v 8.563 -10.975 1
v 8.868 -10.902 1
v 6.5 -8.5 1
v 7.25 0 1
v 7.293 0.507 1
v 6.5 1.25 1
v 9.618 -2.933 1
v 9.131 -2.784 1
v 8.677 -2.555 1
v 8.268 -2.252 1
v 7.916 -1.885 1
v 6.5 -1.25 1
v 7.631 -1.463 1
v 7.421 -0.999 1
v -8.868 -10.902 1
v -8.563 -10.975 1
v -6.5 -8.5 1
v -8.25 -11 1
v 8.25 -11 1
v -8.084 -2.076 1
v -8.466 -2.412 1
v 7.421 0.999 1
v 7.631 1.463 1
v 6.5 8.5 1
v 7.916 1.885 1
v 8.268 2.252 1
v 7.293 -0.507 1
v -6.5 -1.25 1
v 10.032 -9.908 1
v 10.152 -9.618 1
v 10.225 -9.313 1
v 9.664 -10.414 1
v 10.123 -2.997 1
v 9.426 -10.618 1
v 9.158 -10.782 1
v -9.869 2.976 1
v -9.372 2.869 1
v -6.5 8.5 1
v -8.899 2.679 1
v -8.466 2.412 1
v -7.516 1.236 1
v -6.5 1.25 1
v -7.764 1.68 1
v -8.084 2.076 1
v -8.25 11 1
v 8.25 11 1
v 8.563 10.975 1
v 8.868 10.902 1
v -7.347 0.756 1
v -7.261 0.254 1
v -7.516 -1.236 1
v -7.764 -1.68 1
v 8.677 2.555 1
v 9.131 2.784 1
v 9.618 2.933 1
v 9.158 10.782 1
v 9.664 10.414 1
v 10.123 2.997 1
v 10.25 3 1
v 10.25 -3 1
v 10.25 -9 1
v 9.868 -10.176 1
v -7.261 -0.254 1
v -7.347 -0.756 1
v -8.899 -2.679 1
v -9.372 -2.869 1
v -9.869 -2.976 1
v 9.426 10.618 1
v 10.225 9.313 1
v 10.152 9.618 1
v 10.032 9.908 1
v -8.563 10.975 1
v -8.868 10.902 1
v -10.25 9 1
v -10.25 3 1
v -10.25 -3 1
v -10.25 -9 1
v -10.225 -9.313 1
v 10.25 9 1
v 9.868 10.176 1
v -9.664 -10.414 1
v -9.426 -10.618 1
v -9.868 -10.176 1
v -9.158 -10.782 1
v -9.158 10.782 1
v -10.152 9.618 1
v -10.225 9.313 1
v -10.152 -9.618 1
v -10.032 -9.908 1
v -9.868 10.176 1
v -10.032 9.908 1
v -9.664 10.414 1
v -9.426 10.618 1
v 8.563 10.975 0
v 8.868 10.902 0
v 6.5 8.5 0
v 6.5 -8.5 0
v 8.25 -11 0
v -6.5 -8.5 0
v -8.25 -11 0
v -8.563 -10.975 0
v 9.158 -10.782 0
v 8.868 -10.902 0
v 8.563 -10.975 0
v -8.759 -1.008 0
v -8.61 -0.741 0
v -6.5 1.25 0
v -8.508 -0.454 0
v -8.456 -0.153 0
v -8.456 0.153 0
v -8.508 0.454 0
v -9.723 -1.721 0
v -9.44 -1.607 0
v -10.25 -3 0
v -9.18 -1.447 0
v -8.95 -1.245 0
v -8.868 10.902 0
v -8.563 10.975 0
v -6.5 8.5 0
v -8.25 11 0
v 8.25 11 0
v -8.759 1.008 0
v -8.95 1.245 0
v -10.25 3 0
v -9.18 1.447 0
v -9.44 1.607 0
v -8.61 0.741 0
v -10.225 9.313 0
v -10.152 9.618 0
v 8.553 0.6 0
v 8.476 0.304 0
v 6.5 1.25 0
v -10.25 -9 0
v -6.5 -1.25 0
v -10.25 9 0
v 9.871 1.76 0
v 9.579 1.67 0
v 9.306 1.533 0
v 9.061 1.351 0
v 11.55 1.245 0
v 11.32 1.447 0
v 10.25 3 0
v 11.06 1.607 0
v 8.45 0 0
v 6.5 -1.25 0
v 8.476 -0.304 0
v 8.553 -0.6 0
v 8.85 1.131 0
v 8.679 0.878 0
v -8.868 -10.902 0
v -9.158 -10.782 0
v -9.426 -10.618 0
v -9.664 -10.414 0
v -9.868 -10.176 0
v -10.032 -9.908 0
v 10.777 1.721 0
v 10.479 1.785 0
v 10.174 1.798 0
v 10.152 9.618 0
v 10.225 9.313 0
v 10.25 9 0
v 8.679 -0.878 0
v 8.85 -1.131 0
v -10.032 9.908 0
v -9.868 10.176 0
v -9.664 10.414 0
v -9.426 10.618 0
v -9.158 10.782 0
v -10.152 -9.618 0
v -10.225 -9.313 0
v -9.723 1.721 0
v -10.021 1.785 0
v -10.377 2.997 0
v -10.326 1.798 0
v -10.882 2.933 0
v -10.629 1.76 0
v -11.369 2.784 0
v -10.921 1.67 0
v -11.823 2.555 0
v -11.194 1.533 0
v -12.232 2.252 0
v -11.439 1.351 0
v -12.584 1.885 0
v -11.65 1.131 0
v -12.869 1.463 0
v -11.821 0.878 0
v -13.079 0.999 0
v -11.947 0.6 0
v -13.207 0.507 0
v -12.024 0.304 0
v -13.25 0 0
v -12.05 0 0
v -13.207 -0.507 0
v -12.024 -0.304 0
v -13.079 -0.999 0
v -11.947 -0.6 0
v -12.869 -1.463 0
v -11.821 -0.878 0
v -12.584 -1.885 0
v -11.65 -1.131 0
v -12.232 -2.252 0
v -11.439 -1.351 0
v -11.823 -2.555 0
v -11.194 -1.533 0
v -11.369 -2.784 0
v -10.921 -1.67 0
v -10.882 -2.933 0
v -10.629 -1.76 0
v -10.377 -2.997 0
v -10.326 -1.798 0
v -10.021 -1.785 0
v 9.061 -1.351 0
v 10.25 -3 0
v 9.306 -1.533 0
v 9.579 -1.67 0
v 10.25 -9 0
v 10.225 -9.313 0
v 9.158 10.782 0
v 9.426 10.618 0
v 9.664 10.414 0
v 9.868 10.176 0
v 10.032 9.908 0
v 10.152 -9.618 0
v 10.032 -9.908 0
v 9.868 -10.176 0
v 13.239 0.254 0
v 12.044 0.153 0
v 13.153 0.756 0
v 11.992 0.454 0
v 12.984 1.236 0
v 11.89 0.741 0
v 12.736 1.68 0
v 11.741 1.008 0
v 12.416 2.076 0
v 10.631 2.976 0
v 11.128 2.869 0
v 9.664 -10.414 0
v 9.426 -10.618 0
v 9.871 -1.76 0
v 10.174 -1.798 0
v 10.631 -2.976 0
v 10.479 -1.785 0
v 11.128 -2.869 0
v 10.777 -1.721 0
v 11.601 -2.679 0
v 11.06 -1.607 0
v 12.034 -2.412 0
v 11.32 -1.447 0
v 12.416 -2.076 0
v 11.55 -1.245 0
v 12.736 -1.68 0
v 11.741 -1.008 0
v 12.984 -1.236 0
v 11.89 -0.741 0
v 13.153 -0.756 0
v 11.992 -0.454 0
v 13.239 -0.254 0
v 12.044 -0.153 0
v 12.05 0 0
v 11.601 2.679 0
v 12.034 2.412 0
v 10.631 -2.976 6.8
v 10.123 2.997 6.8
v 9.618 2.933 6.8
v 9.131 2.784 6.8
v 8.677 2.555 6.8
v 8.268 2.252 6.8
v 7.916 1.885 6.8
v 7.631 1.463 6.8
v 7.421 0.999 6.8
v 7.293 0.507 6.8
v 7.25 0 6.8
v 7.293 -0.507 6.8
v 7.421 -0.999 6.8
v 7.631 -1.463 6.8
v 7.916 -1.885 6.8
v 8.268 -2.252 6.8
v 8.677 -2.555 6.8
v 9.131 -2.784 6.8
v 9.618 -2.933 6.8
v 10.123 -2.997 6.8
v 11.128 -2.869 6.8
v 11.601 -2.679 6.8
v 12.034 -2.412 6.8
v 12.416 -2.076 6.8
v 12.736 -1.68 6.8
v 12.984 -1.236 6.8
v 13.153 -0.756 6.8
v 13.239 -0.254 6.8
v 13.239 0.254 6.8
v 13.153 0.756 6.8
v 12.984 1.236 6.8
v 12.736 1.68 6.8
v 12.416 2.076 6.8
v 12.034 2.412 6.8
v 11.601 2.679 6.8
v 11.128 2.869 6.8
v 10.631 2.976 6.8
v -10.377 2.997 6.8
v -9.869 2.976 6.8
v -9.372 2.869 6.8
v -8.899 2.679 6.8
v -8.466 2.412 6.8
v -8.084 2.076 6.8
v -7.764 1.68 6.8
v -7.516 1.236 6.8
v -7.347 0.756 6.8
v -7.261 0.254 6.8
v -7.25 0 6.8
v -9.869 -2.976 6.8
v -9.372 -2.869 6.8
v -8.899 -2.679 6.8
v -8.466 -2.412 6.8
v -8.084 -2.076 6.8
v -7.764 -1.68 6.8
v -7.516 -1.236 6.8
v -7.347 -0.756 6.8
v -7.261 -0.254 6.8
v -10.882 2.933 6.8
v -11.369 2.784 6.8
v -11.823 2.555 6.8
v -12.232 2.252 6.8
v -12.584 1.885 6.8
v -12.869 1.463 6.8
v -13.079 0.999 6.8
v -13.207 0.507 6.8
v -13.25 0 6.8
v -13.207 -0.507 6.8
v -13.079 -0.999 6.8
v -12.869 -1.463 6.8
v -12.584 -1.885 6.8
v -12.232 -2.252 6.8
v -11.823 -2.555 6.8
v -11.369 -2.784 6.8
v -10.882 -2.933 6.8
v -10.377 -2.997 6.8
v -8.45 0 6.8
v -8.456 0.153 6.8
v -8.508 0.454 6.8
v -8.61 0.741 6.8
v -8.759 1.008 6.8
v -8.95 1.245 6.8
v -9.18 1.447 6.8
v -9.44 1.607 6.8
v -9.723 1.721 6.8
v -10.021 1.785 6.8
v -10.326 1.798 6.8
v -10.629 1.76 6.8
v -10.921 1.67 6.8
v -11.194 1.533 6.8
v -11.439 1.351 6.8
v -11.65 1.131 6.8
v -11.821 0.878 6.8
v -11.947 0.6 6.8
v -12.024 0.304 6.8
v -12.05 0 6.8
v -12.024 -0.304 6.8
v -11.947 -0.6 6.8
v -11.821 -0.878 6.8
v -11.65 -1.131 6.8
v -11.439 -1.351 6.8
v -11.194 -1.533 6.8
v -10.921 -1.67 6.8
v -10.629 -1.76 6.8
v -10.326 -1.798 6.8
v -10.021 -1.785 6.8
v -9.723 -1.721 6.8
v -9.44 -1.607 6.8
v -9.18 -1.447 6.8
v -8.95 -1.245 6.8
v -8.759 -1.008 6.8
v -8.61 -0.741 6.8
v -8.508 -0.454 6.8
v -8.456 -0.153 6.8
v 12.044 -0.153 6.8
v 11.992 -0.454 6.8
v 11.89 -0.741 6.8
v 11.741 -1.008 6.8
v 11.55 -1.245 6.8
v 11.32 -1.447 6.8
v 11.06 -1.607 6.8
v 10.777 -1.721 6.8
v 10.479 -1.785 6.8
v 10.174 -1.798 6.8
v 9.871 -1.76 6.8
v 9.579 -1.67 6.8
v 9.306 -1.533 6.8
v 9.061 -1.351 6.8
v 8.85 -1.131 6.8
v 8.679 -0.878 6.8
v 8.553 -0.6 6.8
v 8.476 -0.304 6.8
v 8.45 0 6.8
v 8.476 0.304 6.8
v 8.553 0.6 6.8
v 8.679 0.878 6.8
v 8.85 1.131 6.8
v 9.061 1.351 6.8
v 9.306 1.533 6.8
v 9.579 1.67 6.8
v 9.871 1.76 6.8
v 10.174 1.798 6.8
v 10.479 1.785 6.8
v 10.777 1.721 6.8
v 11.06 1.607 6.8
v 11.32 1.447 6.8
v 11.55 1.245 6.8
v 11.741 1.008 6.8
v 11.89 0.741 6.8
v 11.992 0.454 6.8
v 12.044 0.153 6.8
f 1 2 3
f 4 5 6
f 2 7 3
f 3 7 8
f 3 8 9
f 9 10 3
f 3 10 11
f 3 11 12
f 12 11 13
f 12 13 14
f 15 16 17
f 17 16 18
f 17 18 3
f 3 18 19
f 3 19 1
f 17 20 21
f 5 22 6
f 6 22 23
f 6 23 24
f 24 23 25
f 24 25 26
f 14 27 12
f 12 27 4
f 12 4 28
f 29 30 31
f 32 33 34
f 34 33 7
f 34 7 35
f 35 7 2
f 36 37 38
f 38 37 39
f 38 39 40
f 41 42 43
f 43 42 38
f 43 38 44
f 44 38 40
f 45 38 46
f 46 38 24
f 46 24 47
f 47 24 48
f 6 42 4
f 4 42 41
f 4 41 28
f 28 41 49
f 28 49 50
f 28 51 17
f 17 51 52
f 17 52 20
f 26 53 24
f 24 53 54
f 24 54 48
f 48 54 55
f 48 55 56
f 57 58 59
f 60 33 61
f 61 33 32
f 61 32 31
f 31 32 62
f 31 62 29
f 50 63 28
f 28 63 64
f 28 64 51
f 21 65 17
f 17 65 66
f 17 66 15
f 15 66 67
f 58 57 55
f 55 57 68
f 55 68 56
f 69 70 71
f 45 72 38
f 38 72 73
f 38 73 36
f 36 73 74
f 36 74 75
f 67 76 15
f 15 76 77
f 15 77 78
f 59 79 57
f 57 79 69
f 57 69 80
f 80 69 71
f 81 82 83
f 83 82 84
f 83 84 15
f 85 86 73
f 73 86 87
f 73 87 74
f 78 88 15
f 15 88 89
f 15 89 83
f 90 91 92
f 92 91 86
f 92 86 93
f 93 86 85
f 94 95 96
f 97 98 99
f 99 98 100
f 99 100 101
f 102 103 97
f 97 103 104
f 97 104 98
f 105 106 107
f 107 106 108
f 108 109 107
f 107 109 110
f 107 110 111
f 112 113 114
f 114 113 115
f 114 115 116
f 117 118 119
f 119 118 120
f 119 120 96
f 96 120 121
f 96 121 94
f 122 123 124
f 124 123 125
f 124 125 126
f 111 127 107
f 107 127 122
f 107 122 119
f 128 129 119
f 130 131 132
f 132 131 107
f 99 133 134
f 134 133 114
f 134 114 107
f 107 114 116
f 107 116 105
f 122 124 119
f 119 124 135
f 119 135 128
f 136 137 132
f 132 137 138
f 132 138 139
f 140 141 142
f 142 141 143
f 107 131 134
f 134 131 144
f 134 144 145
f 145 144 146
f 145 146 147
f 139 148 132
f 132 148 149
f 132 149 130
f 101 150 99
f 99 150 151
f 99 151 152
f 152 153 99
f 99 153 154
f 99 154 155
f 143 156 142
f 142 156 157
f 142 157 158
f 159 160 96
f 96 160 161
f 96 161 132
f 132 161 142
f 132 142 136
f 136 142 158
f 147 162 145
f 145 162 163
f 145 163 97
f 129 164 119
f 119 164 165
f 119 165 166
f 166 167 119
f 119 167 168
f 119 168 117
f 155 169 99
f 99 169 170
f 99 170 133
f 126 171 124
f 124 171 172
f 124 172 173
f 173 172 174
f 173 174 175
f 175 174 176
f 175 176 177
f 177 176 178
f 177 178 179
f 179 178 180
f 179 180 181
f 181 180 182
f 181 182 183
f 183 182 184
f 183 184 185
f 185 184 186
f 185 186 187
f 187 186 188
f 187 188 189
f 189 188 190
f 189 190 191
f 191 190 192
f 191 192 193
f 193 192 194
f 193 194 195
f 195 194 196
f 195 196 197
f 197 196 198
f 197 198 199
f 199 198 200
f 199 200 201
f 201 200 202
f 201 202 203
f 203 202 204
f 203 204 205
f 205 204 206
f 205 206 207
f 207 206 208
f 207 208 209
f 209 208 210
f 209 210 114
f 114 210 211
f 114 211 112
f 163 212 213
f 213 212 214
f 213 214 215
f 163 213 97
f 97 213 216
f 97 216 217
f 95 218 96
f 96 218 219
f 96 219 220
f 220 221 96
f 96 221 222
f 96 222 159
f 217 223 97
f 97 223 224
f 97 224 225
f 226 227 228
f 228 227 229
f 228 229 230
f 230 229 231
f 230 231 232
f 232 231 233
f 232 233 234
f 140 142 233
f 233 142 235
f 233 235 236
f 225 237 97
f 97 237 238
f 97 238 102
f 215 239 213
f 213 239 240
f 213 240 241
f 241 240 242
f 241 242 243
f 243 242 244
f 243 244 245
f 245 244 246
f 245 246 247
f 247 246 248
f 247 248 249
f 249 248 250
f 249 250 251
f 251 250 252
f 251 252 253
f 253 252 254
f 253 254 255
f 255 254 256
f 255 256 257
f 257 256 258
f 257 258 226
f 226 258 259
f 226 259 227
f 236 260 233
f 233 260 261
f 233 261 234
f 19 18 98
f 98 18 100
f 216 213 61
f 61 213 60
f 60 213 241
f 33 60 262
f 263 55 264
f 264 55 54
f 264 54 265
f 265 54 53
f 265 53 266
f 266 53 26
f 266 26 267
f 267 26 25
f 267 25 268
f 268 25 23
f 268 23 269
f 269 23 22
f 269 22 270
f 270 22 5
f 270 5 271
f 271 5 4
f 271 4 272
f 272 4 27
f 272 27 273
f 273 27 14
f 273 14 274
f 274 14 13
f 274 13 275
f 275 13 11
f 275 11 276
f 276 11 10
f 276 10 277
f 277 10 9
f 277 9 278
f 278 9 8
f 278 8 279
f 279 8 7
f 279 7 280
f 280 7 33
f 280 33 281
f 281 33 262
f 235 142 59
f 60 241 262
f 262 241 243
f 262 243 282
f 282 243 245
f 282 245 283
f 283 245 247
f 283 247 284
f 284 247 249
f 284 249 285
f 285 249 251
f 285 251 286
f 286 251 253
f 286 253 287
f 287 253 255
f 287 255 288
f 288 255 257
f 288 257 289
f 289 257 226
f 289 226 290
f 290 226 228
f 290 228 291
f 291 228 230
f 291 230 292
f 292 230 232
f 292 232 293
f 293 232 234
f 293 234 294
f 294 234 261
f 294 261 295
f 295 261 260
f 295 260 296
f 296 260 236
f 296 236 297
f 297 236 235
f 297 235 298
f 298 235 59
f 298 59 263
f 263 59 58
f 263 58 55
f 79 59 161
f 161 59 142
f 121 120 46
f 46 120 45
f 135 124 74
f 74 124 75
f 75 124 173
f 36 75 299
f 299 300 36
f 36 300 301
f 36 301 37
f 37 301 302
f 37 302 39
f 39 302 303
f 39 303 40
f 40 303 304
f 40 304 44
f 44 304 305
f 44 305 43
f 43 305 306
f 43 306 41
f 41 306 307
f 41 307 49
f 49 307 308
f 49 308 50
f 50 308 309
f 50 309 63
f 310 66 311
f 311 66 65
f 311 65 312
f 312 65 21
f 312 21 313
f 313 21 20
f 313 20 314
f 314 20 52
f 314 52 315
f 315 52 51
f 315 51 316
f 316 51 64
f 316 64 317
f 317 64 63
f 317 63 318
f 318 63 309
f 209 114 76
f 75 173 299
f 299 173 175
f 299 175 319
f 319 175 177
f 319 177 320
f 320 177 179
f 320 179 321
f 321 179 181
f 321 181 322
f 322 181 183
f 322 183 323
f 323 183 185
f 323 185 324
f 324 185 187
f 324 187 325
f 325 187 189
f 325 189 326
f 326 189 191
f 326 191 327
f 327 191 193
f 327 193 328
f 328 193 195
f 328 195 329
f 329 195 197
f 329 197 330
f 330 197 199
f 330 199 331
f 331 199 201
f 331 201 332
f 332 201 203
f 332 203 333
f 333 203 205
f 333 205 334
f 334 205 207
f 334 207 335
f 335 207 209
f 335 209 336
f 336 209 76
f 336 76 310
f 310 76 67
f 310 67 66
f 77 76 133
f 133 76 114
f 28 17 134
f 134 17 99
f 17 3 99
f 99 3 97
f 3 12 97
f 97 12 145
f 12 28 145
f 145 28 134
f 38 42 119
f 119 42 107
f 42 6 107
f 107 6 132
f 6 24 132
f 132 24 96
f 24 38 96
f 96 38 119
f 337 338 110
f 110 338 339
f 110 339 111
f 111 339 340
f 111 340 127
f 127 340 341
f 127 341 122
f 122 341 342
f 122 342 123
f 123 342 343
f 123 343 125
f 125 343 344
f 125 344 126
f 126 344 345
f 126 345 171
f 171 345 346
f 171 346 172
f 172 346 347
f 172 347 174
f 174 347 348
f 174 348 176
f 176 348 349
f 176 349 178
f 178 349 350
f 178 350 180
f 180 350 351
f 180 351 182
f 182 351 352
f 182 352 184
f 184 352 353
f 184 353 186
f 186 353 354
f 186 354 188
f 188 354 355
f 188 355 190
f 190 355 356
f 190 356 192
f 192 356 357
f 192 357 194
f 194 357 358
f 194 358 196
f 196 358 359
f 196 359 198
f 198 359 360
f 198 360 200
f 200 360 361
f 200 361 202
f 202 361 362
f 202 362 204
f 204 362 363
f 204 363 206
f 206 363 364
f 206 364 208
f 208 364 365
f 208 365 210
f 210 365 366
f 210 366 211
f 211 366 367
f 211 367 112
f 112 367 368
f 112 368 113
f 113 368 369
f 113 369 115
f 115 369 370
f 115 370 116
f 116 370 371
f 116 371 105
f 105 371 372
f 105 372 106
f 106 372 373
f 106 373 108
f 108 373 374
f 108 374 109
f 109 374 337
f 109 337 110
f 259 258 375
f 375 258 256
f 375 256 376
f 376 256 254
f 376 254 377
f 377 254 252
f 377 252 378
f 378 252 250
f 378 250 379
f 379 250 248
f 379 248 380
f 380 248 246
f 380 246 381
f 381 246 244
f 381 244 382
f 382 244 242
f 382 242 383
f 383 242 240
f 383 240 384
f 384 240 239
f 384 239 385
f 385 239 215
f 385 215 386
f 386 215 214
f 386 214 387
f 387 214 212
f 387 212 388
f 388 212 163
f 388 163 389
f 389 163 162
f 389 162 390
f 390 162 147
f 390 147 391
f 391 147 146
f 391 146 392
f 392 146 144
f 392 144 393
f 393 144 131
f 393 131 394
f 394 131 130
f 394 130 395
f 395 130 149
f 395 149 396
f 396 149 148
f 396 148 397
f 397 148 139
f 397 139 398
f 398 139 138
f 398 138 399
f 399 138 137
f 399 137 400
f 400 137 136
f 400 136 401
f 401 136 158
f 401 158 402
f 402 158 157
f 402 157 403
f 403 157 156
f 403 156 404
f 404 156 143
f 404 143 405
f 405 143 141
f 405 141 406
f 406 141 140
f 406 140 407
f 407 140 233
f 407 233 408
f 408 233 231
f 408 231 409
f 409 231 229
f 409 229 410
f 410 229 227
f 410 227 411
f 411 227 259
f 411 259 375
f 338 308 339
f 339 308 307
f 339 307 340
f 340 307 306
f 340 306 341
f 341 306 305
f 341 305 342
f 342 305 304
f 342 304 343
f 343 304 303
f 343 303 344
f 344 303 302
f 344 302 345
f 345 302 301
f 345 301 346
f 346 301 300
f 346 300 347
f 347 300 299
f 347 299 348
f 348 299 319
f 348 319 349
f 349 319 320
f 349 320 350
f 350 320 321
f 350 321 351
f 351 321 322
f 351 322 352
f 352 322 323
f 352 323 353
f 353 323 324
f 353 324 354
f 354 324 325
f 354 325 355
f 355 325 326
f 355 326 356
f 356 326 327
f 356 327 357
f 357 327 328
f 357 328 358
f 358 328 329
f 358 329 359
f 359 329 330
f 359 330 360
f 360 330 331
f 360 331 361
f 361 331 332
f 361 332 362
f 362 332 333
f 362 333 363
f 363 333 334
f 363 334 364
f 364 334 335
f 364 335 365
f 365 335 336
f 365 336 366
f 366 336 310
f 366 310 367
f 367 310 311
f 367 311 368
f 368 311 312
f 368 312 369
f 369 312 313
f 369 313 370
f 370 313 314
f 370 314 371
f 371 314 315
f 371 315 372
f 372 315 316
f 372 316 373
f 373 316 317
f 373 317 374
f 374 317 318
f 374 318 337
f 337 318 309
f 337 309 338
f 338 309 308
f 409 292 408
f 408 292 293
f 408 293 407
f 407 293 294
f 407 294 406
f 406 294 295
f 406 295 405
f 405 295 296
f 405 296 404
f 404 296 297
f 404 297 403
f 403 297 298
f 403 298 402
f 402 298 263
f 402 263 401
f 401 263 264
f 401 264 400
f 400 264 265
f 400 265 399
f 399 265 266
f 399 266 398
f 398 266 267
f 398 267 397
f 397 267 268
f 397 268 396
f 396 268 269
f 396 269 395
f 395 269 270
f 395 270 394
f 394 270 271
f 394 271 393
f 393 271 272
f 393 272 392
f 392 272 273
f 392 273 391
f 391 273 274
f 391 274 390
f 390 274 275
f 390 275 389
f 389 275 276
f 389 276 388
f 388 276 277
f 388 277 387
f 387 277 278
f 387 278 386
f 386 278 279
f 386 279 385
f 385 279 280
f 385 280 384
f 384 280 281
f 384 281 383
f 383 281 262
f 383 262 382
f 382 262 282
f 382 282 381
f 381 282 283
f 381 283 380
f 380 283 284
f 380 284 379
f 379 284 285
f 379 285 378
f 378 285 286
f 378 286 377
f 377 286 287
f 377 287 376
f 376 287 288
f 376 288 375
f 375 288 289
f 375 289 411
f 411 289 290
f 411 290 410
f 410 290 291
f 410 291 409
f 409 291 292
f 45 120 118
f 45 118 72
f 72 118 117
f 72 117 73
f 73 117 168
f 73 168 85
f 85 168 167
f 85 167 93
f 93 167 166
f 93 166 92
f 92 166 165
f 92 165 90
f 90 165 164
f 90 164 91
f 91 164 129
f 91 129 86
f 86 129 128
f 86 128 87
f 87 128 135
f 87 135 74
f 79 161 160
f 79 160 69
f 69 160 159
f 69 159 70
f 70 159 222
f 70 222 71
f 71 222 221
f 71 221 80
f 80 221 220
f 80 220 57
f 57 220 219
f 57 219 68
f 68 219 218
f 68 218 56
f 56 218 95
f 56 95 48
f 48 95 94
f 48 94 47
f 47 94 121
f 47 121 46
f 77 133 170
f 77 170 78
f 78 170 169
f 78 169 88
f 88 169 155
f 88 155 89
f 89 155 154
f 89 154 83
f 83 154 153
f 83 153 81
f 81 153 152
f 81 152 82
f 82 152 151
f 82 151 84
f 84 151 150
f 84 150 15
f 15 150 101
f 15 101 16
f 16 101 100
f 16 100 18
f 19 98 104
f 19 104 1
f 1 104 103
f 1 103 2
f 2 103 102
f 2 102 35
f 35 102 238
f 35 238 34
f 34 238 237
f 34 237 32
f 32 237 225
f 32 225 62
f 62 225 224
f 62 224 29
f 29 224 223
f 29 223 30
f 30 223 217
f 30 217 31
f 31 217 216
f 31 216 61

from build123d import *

# Parameters (mm, degrees)
SKETCH1_R           = 1.8
SKETCH1_W           = 13
SKETCH1_H           = 7.25
BOSS_EXTRUDE1_DEPTH = 1
SKETCH2_R           = 3
SKETCH2_R_2         = 1.8
BOSS_EXTRUDE2_DEPTH = 5.8
FILLET4_R           = 2
FILLET5_R           = 2
FILLET6_R           = 2
FILLET7_R           = 2


with BuildPart() as part:
    # Sketch1 → Boss-Extrude1 (new body)
    with BuildSketch(Plane.XY):
        with BuildLine():
            Line((-6.5, 11), (6.5, 11))
            Line((6.5, 11), (10.25, 11))
            Line((10.25, 11), (10.25, 3))
            ThreePointArc((10.25, 3), (13.25, 0), (10.25, -3))
            Line((10.25, -3), (10.25, -11))
            Line((10.25, -11), (6.5, -11))
            Line((6.5, -11), (-6.5, -11))
            Line((-6.5, -11), (-10.25, -11))
            Line((-10.25, -11), (-10.25, -3))
            ThreePointArc((-10.25, -3), (-13.25, 0), (-10.25, 3))
            Line((-10.25, 3), (-10.25, 11))
            Line((-10.25, 11), (-6.5, 11))
        make_face()
        with Locations(Location((-10.25, 0, 0), (0, 0, 180))):
            Circle(SKETCH1_R, mode=Mode.SUBTRACT)
        with Locations((10.25, 0)):
            Circle(SKETCH1_R, mode=Mode.SUBTRACT)
        with Locations((0, -4.875)):
            Rectangle(SKETCH1_W, SKETCH1_H, mode=Mode.SUBTRACT)
        with Locations((0, 4.875)):
            Rectangle(SKETCH1_W, SKETCH1_H, mode=Mode.SUBTRACT)
    extrude(amount=BOSS_EXTRUDE1_DEPTH)

    # Sketch2 → Boss-Extrude2 (add)
    with BuildSketch(Plane.XY.offset(1)):
        with Locations(Location((-10.25, 0, 0), (0, 0, 270))):
            Circle(SKETCH2_R)
        with Locations(Location((-10.25, 0, 0), (0, 0, 180))):
            Circle(SKETCH2_R_2, mode=Mode.SUBTRACT)
        with Locations(Location((10.25, 0, 0), (0, 0, 180))):
            Circle(SKETCH2_R)
        with Locations(Location((10.25, 0, 0), (0, 0, 180))):
            Circle(SKETCH2_R_2, mode=Mode.SUBTRACT)
    extrude(amount=BOSS_EXTRUDE2_DEPTH)

    # Fillet4
    fillet4_edges = [part.edges().sort_by_distance(p)[0] for p in [
        (-10.25, 11, 0.5),
    ]]
    fillet(fillet4_edges, radius=FILLET4_R)

    # Fillet5
    fillet5_edges = [part.edges().sort_by_distance(p)[0] for p in [
        (10.25, 11, 0.5),
    ]]
    fillet(fillet5_edges, radius=FILLET5_R)

    # Fillet6
    fillet6_edges = [part.edges().sort_by_distance(p)[0] for p in [
        (-10.25, -11, 0.5),
    ]]
    fillet(fillet6_edges, radius=FILLET6_R)

    # Fillet7
    fillet7_edges = [part.edges().sort_by_distance(p)[0] for p in [
        (10.25, -11, 0.5),
    ]]
    fillet(fillet7_edges, radius=FILLET7_R)


solid = part.part
